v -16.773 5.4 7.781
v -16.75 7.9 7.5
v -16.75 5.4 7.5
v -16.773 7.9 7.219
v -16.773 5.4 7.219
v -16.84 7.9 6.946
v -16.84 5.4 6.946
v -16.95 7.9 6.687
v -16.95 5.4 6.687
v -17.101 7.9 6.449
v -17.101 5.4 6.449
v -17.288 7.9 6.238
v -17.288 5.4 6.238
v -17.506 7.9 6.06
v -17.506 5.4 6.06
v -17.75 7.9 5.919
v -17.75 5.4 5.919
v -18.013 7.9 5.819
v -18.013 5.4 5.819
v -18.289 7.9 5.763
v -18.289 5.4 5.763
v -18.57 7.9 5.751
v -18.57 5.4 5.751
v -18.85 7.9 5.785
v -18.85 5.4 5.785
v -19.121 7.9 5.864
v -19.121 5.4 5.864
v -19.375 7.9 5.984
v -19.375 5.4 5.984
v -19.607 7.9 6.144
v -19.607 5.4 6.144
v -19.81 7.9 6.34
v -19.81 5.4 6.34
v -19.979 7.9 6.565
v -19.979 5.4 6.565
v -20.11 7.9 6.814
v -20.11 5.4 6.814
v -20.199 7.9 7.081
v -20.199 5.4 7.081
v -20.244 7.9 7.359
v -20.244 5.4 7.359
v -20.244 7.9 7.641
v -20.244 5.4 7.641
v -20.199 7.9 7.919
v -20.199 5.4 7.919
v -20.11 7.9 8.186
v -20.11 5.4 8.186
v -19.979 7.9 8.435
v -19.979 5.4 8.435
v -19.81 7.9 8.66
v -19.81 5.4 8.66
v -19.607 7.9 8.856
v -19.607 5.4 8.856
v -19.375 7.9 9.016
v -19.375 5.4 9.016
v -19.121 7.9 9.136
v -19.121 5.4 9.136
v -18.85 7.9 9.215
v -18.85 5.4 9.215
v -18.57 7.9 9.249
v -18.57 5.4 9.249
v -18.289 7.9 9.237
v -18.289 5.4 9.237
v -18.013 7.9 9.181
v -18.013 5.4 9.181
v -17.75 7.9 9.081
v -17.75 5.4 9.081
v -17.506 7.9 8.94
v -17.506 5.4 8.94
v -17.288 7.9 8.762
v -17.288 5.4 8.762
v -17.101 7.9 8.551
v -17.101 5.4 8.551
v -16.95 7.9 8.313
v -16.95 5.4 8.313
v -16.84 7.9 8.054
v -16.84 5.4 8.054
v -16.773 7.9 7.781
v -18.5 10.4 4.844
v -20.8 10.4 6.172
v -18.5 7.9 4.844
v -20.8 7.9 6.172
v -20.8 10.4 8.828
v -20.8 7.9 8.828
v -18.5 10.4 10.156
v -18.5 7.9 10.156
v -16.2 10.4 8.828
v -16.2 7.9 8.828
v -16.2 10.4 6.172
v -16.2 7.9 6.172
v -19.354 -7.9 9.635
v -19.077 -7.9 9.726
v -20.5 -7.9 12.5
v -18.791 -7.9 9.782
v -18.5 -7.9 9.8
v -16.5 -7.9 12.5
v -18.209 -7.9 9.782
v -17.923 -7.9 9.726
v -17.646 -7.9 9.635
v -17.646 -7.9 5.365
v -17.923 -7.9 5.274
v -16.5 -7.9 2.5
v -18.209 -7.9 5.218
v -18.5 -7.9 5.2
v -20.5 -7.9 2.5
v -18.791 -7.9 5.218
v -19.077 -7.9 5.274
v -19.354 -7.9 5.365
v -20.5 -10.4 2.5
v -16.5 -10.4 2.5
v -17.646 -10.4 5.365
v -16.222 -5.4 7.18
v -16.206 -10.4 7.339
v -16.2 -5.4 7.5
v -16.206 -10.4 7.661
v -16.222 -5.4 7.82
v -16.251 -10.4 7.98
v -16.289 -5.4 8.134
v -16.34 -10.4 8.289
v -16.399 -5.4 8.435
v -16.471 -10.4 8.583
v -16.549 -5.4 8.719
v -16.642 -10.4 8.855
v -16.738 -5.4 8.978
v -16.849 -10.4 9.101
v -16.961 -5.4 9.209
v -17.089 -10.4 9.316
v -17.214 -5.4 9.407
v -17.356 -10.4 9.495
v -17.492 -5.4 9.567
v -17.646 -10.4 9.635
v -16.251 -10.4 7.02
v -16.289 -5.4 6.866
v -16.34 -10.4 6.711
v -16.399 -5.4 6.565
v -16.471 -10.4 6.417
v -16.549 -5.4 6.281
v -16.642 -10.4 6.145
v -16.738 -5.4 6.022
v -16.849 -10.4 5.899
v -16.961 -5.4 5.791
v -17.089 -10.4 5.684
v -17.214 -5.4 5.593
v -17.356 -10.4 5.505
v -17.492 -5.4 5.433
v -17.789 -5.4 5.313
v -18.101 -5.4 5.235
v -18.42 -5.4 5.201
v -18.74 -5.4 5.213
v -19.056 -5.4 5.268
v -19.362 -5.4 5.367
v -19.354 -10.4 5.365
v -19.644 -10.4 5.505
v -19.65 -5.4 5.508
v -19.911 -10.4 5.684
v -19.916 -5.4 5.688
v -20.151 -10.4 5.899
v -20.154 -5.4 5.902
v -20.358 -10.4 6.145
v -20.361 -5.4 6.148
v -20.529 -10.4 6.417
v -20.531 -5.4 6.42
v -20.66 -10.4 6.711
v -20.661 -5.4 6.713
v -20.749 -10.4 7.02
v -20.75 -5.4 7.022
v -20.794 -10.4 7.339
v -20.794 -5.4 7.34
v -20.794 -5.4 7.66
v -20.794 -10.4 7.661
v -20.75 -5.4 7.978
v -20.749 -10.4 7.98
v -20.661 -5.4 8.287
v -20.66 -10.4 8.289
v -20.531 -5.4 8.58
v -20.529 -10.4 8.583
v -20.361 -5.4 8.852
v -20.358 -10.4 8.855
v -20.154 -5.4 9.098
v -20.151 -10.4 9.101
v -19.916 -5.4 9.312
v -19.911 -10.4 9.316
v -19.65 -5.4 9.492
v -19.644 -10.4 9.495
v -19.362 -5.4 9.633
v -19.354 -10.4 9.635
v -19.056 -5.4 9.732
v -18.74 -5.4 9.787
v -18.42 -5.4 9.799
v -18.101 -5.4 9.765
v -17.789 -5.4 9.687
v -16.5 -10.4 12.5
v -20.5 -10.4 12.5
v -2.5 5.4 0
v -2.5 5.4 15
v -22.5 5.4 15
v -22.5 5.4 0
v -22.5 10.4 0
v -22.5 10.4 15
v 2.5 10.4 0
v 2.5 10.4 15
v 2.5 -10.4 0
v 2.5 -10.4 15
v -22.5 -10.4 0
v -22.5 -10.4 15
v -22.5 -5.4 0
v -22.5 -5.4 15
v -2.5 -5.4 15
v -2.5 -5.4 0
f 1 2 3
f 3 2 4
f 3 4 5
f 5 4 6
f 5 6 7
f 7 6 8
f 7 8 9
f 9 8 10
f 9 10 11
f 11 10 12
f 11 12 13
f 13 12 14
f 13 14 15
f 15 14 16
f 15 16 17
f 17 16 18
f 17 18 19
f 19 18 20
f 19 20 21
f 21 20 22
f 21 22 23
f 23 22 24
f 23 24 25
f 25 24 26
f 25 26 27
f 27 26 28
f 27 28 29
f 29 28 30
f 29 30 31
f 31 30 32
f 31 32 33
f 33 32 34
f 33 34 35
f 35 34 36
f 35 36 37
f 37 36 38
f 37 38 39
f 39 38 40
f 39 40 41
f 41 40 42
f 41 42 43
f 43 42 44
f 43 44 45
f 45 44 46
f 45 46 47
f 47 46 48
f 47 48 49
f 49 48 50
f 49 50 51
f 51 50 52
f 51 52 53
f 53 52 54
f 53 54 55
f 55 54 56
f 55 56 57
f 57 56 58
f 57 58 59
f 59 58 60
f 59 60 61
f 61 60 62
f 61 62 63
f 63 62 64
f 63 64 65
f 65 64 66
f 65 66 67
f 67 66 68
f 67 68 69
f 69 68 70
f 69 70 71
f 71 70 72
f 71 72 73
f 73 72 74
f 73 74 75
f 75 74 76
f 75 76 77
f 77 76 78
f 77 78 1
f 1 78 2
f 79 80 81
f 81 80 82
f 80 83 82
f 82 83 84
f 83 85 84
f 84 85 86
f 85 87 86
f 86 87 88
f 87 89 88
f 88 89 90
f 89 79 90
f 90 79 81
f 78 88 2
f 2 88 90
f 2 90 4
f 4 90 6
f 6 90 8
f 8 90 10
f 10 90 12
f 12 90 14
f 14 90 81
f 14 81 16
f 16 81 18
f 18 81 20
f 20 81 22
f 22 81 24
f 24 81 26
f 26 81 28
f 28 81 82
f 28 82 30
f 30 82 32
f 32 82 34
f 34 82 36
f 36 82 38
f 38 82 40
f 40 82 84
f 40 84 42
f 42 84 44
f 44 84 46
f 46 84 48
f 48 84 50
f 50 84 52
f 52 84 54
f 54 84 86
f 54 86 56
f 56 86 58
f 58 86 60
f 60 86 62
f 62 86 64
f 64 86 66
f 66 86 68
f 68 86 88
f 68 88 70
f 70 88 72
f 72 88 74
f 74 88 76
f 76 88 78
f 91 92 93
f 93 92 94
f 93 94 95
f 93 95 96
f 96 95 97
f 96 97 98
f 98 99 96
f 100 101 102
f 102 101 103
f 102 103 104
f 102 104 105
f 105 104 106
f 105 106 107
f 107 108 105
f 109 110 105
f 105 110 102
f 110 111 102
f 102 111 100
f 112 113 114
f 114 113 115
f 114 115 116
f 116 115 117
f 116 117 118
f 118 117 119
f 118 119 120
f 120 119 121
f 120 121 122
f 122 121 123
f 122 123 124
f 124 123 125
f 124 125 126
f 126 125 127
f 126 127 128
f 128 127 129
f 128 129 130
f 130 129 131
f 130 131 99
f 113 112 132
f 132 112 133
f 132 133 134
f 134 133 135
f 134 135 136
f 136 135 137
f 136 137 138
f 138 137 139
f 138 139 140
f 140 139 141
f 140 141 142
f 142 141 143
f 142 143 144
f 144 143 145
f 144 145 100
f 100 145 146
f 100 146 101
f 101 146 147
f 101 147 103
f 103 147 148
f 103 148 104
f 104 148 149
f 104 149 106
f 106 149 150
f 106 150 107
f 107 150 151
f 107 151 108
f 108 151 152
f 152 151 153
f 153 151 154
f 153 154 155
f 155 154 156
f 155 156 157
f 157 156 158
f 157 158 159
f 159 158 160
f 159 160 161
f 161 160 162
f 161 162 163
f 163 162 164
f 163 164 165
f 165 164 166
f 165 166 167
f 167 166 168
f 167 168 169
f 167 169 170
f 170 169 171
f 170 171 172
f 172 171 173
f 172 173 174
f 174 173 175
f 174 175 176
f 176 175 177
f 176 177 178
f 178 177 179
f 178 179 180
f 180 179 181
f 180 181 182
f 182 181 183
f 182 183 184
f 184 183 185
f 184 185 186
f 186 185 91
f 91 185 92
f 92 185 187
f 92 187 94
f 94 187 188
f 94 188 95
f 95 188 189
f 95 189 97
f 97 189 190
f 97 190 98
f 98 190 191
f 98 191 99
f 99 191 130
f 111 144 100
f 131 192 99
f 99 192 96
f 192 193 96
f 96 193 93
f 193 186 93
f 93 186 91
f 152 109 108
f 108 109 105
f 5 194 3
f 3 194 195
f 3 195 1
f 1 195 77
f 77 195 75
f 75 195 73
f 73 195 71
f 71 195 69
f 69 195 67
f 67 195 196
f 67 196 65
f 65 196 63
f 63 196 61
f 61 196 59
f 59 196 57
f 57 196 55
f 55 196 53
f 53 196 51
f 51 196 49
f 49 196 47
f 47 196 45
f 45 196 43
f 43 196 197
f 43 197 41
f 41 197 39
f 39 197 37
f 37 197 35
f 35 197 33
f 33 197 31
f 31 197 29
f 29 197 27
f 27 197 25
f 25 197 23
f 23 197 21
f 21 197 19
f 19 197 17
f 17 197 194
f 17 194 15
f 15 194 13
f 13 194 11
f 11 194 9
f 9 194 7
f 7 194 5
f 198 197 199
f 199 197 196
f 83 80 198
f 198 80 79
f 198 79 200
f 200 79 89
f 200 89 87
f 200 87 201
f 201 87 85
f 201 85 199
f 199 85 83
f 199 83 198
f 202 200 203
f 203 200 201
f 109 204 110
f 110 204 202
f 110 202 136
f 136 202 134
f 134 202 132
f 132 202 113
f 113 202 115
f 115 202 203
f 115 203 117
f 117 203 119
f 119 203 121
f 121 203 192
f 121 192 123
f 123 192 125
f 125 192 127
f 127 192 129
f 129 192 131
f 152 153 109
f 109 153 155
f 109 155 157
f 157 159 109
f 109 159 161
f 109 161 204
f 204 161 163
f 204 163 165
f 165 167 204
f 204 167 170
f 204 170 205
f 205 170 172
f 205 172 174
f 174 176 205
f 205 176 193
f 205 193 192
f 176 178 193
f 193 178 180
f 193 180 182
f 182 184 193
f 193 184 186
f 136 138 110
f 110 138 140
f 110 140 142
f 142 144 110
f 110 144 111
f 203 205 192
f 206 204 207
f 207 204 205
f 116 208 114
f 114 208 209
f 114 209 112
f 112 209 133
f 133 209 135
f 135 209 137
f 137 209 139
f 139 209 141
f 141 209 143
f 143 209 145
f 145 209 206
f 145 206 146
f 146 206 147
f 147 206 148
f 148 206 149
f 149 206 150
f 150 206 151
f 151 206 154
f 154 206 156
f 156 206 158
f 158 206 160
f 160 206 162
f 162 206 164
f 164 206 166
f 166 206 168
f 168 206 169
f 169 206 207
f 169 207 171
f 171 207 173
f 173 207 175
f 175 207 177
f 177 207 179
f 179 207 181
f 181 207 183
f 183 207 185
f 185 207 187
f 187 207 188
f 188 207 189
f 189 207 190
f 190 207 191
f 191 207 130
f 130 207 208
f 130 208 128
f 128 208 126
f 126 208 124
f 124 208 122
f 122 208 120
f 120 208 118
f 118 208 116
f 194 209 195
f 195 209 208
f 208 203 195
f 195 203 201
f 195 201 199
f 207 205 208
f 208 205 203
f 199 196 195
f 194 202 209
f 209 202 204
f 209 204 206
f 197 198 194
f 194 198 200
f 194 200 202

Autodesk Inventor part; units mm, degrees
sketch "Boceto1" plane through (0, 0, 0) normal (0, 0, 1) x (1, 0, 0)
  line L0 (-2.5, -10.4) -> (2.5, -10.4)
  line L1 (2.5, -10.4) -> (2.5, 10.4)
  line L2 (2.5, 10.4) -> (-2.5, 10.4)
  line L3 (-2.5, 5.4) -> (-2.5, -5.4)
  line L4 (-2.5, -10.4) -> (2.5, 10.4) construction
  line L5 (2.5, -10.4) -> (-2.5, 10.4) construction
  line L6 (-2.5, 10.4) -> (-22.5, 10.4)
  line L7 (-22.5, 10.4) -> (-22.5, 5.4)
  line L8 (-22.5, 5.4) -> (-2.5, 5.4)
  line L9 (-27.5, 0) -> (7.5, 0) projected
  line L10 (-2.5, -10.4) -> (-22.5, -10.4)
  line L11 (-22.5, -10.4) -> (-22.5, -5.4)
  line L12 (-22.5, -5.4) -> (-2.5, -5.4)
  point P0 (0, 0)
  dimension "d4" = 25
  dimension "d5" = 20
  dimension "d6" = 10.8
  dimension "d8" = 20.8
extrude "Extrusión1" add sketch "Boceto1" along normal blind 15
sketch "Boceto2" plane through (-22.5, -10.4, 0) normal (0, -1, 0) x (1, 0, 0)
  line L0 (0, 0) -> (0, 15) projected
  line L1 (0, 15) -> (25, 15) projected
  line L2 (2, 12.5) -> (6, 12.5)
  line L3 (6, 2.5) -> (2, 2.5)
  line L4 (2, 12.5) -> (6, 2.5) construction
  line L5 (6, 12.5) -> (2, 2.5) construction
  line L6 (4.8542, 9.6355) -> (6, 12.5)
  line L7 (3.1458, 9.6355) -> (2, 12.5)
  line L8 (3.1458, 5.3645) -> (2, 2.5)
  line L9 (4.8542, 5.3645) -> (6, 2.5)
  arc A0 (4.8542, 5.3645) -> (4.8542, 9.6355) centre (4, 7.5) ccw
  arc A1 (3.1458, 9.6355) -> (3.1458, 5.3645) centre (4, 7.5) ccw
  point P0 (22.5, 0)
  point P1 (0, 7.5)
  dimension "d11" = 4
  dimension "d13" = 7.5
  dimension "d25" = 2.3
  dimension "d26" = 2.3
extrude "Extrusión2" cut sketch "Boceto2" against normal blind 2.5
sketch "Boceto3" plane through (-22.5, -7.9, 0) normal (0, -1, 0) x (1, 0, 0)
  arc A0 (4.8542, 5.3645) -> (4.8542, 9.6355) centre (4, 7.5) ccw projected
  arc A1 (3.1458, 9.6355) -> (3.1458, 5.3645) centre (4, 7.5) ccw projected
  circle A2 centre (4, 7.5) radius 2.3
  point P0 (22.5, 0)
  point P1 (3.1458, 5.3645)
  point P2 (4.8542, 5.3645)
  point P3 (4.8542, 9.6355)
  point P4 (3.1458, 9.6355)
  dimension "d27" = 4.6
extrude "Extrusión3" cut sketch "Boceto3" against normal blind 2.5
sketch "Boceto4" plane through (-22.5, 10.4, 0) normal (0, 1, 0) x (1, 0, 0)
  circle A0 centre (4, -7.5) radius 2.3 construction
  line L0 (6.3, -8.8279) -> (4, -10.1558)
  line L1 (4, -10.1558) -> (1.7, -8.8279)
  line L2 (1.7, -8.8279) -> (1.7, -6.1721)
  line L3 (1.7, -6.1721) -> (4, -4.8442)
  line L4 (4, -4.8442) -> (6.3, -6.1721)
  line L5 (6.3, -6.1721) -> (6.3, -8.8279)
  point P0 (22.5, 0)
  point P1 (6.3, -7.5)
extrude "Extrusión4" cut sketch "Boceto4" against normal blind 2.5
sketch "Boceto5" plane through (-22.5, 7.9, 0) normal (0, 1, 0) x (1, 0, 0)
  arc A0 (4.8542, -9.6355) -> (4.8542, -5.3645) centre (4, -7.5) ccw projected
  circle A1 centre (4, -7.5) radius 1.75
  point P0 (22.5, 0)
  point P1 (3.1458, -5.3645)
  point P2 (3.1458, -9.6355)
  dimension "d22" = 3.5
extrude "Extrusión5" cut sketch "Boceto5" against normal blind 2.5
properties part number "PruebaCParaBuje_3DPrint"
